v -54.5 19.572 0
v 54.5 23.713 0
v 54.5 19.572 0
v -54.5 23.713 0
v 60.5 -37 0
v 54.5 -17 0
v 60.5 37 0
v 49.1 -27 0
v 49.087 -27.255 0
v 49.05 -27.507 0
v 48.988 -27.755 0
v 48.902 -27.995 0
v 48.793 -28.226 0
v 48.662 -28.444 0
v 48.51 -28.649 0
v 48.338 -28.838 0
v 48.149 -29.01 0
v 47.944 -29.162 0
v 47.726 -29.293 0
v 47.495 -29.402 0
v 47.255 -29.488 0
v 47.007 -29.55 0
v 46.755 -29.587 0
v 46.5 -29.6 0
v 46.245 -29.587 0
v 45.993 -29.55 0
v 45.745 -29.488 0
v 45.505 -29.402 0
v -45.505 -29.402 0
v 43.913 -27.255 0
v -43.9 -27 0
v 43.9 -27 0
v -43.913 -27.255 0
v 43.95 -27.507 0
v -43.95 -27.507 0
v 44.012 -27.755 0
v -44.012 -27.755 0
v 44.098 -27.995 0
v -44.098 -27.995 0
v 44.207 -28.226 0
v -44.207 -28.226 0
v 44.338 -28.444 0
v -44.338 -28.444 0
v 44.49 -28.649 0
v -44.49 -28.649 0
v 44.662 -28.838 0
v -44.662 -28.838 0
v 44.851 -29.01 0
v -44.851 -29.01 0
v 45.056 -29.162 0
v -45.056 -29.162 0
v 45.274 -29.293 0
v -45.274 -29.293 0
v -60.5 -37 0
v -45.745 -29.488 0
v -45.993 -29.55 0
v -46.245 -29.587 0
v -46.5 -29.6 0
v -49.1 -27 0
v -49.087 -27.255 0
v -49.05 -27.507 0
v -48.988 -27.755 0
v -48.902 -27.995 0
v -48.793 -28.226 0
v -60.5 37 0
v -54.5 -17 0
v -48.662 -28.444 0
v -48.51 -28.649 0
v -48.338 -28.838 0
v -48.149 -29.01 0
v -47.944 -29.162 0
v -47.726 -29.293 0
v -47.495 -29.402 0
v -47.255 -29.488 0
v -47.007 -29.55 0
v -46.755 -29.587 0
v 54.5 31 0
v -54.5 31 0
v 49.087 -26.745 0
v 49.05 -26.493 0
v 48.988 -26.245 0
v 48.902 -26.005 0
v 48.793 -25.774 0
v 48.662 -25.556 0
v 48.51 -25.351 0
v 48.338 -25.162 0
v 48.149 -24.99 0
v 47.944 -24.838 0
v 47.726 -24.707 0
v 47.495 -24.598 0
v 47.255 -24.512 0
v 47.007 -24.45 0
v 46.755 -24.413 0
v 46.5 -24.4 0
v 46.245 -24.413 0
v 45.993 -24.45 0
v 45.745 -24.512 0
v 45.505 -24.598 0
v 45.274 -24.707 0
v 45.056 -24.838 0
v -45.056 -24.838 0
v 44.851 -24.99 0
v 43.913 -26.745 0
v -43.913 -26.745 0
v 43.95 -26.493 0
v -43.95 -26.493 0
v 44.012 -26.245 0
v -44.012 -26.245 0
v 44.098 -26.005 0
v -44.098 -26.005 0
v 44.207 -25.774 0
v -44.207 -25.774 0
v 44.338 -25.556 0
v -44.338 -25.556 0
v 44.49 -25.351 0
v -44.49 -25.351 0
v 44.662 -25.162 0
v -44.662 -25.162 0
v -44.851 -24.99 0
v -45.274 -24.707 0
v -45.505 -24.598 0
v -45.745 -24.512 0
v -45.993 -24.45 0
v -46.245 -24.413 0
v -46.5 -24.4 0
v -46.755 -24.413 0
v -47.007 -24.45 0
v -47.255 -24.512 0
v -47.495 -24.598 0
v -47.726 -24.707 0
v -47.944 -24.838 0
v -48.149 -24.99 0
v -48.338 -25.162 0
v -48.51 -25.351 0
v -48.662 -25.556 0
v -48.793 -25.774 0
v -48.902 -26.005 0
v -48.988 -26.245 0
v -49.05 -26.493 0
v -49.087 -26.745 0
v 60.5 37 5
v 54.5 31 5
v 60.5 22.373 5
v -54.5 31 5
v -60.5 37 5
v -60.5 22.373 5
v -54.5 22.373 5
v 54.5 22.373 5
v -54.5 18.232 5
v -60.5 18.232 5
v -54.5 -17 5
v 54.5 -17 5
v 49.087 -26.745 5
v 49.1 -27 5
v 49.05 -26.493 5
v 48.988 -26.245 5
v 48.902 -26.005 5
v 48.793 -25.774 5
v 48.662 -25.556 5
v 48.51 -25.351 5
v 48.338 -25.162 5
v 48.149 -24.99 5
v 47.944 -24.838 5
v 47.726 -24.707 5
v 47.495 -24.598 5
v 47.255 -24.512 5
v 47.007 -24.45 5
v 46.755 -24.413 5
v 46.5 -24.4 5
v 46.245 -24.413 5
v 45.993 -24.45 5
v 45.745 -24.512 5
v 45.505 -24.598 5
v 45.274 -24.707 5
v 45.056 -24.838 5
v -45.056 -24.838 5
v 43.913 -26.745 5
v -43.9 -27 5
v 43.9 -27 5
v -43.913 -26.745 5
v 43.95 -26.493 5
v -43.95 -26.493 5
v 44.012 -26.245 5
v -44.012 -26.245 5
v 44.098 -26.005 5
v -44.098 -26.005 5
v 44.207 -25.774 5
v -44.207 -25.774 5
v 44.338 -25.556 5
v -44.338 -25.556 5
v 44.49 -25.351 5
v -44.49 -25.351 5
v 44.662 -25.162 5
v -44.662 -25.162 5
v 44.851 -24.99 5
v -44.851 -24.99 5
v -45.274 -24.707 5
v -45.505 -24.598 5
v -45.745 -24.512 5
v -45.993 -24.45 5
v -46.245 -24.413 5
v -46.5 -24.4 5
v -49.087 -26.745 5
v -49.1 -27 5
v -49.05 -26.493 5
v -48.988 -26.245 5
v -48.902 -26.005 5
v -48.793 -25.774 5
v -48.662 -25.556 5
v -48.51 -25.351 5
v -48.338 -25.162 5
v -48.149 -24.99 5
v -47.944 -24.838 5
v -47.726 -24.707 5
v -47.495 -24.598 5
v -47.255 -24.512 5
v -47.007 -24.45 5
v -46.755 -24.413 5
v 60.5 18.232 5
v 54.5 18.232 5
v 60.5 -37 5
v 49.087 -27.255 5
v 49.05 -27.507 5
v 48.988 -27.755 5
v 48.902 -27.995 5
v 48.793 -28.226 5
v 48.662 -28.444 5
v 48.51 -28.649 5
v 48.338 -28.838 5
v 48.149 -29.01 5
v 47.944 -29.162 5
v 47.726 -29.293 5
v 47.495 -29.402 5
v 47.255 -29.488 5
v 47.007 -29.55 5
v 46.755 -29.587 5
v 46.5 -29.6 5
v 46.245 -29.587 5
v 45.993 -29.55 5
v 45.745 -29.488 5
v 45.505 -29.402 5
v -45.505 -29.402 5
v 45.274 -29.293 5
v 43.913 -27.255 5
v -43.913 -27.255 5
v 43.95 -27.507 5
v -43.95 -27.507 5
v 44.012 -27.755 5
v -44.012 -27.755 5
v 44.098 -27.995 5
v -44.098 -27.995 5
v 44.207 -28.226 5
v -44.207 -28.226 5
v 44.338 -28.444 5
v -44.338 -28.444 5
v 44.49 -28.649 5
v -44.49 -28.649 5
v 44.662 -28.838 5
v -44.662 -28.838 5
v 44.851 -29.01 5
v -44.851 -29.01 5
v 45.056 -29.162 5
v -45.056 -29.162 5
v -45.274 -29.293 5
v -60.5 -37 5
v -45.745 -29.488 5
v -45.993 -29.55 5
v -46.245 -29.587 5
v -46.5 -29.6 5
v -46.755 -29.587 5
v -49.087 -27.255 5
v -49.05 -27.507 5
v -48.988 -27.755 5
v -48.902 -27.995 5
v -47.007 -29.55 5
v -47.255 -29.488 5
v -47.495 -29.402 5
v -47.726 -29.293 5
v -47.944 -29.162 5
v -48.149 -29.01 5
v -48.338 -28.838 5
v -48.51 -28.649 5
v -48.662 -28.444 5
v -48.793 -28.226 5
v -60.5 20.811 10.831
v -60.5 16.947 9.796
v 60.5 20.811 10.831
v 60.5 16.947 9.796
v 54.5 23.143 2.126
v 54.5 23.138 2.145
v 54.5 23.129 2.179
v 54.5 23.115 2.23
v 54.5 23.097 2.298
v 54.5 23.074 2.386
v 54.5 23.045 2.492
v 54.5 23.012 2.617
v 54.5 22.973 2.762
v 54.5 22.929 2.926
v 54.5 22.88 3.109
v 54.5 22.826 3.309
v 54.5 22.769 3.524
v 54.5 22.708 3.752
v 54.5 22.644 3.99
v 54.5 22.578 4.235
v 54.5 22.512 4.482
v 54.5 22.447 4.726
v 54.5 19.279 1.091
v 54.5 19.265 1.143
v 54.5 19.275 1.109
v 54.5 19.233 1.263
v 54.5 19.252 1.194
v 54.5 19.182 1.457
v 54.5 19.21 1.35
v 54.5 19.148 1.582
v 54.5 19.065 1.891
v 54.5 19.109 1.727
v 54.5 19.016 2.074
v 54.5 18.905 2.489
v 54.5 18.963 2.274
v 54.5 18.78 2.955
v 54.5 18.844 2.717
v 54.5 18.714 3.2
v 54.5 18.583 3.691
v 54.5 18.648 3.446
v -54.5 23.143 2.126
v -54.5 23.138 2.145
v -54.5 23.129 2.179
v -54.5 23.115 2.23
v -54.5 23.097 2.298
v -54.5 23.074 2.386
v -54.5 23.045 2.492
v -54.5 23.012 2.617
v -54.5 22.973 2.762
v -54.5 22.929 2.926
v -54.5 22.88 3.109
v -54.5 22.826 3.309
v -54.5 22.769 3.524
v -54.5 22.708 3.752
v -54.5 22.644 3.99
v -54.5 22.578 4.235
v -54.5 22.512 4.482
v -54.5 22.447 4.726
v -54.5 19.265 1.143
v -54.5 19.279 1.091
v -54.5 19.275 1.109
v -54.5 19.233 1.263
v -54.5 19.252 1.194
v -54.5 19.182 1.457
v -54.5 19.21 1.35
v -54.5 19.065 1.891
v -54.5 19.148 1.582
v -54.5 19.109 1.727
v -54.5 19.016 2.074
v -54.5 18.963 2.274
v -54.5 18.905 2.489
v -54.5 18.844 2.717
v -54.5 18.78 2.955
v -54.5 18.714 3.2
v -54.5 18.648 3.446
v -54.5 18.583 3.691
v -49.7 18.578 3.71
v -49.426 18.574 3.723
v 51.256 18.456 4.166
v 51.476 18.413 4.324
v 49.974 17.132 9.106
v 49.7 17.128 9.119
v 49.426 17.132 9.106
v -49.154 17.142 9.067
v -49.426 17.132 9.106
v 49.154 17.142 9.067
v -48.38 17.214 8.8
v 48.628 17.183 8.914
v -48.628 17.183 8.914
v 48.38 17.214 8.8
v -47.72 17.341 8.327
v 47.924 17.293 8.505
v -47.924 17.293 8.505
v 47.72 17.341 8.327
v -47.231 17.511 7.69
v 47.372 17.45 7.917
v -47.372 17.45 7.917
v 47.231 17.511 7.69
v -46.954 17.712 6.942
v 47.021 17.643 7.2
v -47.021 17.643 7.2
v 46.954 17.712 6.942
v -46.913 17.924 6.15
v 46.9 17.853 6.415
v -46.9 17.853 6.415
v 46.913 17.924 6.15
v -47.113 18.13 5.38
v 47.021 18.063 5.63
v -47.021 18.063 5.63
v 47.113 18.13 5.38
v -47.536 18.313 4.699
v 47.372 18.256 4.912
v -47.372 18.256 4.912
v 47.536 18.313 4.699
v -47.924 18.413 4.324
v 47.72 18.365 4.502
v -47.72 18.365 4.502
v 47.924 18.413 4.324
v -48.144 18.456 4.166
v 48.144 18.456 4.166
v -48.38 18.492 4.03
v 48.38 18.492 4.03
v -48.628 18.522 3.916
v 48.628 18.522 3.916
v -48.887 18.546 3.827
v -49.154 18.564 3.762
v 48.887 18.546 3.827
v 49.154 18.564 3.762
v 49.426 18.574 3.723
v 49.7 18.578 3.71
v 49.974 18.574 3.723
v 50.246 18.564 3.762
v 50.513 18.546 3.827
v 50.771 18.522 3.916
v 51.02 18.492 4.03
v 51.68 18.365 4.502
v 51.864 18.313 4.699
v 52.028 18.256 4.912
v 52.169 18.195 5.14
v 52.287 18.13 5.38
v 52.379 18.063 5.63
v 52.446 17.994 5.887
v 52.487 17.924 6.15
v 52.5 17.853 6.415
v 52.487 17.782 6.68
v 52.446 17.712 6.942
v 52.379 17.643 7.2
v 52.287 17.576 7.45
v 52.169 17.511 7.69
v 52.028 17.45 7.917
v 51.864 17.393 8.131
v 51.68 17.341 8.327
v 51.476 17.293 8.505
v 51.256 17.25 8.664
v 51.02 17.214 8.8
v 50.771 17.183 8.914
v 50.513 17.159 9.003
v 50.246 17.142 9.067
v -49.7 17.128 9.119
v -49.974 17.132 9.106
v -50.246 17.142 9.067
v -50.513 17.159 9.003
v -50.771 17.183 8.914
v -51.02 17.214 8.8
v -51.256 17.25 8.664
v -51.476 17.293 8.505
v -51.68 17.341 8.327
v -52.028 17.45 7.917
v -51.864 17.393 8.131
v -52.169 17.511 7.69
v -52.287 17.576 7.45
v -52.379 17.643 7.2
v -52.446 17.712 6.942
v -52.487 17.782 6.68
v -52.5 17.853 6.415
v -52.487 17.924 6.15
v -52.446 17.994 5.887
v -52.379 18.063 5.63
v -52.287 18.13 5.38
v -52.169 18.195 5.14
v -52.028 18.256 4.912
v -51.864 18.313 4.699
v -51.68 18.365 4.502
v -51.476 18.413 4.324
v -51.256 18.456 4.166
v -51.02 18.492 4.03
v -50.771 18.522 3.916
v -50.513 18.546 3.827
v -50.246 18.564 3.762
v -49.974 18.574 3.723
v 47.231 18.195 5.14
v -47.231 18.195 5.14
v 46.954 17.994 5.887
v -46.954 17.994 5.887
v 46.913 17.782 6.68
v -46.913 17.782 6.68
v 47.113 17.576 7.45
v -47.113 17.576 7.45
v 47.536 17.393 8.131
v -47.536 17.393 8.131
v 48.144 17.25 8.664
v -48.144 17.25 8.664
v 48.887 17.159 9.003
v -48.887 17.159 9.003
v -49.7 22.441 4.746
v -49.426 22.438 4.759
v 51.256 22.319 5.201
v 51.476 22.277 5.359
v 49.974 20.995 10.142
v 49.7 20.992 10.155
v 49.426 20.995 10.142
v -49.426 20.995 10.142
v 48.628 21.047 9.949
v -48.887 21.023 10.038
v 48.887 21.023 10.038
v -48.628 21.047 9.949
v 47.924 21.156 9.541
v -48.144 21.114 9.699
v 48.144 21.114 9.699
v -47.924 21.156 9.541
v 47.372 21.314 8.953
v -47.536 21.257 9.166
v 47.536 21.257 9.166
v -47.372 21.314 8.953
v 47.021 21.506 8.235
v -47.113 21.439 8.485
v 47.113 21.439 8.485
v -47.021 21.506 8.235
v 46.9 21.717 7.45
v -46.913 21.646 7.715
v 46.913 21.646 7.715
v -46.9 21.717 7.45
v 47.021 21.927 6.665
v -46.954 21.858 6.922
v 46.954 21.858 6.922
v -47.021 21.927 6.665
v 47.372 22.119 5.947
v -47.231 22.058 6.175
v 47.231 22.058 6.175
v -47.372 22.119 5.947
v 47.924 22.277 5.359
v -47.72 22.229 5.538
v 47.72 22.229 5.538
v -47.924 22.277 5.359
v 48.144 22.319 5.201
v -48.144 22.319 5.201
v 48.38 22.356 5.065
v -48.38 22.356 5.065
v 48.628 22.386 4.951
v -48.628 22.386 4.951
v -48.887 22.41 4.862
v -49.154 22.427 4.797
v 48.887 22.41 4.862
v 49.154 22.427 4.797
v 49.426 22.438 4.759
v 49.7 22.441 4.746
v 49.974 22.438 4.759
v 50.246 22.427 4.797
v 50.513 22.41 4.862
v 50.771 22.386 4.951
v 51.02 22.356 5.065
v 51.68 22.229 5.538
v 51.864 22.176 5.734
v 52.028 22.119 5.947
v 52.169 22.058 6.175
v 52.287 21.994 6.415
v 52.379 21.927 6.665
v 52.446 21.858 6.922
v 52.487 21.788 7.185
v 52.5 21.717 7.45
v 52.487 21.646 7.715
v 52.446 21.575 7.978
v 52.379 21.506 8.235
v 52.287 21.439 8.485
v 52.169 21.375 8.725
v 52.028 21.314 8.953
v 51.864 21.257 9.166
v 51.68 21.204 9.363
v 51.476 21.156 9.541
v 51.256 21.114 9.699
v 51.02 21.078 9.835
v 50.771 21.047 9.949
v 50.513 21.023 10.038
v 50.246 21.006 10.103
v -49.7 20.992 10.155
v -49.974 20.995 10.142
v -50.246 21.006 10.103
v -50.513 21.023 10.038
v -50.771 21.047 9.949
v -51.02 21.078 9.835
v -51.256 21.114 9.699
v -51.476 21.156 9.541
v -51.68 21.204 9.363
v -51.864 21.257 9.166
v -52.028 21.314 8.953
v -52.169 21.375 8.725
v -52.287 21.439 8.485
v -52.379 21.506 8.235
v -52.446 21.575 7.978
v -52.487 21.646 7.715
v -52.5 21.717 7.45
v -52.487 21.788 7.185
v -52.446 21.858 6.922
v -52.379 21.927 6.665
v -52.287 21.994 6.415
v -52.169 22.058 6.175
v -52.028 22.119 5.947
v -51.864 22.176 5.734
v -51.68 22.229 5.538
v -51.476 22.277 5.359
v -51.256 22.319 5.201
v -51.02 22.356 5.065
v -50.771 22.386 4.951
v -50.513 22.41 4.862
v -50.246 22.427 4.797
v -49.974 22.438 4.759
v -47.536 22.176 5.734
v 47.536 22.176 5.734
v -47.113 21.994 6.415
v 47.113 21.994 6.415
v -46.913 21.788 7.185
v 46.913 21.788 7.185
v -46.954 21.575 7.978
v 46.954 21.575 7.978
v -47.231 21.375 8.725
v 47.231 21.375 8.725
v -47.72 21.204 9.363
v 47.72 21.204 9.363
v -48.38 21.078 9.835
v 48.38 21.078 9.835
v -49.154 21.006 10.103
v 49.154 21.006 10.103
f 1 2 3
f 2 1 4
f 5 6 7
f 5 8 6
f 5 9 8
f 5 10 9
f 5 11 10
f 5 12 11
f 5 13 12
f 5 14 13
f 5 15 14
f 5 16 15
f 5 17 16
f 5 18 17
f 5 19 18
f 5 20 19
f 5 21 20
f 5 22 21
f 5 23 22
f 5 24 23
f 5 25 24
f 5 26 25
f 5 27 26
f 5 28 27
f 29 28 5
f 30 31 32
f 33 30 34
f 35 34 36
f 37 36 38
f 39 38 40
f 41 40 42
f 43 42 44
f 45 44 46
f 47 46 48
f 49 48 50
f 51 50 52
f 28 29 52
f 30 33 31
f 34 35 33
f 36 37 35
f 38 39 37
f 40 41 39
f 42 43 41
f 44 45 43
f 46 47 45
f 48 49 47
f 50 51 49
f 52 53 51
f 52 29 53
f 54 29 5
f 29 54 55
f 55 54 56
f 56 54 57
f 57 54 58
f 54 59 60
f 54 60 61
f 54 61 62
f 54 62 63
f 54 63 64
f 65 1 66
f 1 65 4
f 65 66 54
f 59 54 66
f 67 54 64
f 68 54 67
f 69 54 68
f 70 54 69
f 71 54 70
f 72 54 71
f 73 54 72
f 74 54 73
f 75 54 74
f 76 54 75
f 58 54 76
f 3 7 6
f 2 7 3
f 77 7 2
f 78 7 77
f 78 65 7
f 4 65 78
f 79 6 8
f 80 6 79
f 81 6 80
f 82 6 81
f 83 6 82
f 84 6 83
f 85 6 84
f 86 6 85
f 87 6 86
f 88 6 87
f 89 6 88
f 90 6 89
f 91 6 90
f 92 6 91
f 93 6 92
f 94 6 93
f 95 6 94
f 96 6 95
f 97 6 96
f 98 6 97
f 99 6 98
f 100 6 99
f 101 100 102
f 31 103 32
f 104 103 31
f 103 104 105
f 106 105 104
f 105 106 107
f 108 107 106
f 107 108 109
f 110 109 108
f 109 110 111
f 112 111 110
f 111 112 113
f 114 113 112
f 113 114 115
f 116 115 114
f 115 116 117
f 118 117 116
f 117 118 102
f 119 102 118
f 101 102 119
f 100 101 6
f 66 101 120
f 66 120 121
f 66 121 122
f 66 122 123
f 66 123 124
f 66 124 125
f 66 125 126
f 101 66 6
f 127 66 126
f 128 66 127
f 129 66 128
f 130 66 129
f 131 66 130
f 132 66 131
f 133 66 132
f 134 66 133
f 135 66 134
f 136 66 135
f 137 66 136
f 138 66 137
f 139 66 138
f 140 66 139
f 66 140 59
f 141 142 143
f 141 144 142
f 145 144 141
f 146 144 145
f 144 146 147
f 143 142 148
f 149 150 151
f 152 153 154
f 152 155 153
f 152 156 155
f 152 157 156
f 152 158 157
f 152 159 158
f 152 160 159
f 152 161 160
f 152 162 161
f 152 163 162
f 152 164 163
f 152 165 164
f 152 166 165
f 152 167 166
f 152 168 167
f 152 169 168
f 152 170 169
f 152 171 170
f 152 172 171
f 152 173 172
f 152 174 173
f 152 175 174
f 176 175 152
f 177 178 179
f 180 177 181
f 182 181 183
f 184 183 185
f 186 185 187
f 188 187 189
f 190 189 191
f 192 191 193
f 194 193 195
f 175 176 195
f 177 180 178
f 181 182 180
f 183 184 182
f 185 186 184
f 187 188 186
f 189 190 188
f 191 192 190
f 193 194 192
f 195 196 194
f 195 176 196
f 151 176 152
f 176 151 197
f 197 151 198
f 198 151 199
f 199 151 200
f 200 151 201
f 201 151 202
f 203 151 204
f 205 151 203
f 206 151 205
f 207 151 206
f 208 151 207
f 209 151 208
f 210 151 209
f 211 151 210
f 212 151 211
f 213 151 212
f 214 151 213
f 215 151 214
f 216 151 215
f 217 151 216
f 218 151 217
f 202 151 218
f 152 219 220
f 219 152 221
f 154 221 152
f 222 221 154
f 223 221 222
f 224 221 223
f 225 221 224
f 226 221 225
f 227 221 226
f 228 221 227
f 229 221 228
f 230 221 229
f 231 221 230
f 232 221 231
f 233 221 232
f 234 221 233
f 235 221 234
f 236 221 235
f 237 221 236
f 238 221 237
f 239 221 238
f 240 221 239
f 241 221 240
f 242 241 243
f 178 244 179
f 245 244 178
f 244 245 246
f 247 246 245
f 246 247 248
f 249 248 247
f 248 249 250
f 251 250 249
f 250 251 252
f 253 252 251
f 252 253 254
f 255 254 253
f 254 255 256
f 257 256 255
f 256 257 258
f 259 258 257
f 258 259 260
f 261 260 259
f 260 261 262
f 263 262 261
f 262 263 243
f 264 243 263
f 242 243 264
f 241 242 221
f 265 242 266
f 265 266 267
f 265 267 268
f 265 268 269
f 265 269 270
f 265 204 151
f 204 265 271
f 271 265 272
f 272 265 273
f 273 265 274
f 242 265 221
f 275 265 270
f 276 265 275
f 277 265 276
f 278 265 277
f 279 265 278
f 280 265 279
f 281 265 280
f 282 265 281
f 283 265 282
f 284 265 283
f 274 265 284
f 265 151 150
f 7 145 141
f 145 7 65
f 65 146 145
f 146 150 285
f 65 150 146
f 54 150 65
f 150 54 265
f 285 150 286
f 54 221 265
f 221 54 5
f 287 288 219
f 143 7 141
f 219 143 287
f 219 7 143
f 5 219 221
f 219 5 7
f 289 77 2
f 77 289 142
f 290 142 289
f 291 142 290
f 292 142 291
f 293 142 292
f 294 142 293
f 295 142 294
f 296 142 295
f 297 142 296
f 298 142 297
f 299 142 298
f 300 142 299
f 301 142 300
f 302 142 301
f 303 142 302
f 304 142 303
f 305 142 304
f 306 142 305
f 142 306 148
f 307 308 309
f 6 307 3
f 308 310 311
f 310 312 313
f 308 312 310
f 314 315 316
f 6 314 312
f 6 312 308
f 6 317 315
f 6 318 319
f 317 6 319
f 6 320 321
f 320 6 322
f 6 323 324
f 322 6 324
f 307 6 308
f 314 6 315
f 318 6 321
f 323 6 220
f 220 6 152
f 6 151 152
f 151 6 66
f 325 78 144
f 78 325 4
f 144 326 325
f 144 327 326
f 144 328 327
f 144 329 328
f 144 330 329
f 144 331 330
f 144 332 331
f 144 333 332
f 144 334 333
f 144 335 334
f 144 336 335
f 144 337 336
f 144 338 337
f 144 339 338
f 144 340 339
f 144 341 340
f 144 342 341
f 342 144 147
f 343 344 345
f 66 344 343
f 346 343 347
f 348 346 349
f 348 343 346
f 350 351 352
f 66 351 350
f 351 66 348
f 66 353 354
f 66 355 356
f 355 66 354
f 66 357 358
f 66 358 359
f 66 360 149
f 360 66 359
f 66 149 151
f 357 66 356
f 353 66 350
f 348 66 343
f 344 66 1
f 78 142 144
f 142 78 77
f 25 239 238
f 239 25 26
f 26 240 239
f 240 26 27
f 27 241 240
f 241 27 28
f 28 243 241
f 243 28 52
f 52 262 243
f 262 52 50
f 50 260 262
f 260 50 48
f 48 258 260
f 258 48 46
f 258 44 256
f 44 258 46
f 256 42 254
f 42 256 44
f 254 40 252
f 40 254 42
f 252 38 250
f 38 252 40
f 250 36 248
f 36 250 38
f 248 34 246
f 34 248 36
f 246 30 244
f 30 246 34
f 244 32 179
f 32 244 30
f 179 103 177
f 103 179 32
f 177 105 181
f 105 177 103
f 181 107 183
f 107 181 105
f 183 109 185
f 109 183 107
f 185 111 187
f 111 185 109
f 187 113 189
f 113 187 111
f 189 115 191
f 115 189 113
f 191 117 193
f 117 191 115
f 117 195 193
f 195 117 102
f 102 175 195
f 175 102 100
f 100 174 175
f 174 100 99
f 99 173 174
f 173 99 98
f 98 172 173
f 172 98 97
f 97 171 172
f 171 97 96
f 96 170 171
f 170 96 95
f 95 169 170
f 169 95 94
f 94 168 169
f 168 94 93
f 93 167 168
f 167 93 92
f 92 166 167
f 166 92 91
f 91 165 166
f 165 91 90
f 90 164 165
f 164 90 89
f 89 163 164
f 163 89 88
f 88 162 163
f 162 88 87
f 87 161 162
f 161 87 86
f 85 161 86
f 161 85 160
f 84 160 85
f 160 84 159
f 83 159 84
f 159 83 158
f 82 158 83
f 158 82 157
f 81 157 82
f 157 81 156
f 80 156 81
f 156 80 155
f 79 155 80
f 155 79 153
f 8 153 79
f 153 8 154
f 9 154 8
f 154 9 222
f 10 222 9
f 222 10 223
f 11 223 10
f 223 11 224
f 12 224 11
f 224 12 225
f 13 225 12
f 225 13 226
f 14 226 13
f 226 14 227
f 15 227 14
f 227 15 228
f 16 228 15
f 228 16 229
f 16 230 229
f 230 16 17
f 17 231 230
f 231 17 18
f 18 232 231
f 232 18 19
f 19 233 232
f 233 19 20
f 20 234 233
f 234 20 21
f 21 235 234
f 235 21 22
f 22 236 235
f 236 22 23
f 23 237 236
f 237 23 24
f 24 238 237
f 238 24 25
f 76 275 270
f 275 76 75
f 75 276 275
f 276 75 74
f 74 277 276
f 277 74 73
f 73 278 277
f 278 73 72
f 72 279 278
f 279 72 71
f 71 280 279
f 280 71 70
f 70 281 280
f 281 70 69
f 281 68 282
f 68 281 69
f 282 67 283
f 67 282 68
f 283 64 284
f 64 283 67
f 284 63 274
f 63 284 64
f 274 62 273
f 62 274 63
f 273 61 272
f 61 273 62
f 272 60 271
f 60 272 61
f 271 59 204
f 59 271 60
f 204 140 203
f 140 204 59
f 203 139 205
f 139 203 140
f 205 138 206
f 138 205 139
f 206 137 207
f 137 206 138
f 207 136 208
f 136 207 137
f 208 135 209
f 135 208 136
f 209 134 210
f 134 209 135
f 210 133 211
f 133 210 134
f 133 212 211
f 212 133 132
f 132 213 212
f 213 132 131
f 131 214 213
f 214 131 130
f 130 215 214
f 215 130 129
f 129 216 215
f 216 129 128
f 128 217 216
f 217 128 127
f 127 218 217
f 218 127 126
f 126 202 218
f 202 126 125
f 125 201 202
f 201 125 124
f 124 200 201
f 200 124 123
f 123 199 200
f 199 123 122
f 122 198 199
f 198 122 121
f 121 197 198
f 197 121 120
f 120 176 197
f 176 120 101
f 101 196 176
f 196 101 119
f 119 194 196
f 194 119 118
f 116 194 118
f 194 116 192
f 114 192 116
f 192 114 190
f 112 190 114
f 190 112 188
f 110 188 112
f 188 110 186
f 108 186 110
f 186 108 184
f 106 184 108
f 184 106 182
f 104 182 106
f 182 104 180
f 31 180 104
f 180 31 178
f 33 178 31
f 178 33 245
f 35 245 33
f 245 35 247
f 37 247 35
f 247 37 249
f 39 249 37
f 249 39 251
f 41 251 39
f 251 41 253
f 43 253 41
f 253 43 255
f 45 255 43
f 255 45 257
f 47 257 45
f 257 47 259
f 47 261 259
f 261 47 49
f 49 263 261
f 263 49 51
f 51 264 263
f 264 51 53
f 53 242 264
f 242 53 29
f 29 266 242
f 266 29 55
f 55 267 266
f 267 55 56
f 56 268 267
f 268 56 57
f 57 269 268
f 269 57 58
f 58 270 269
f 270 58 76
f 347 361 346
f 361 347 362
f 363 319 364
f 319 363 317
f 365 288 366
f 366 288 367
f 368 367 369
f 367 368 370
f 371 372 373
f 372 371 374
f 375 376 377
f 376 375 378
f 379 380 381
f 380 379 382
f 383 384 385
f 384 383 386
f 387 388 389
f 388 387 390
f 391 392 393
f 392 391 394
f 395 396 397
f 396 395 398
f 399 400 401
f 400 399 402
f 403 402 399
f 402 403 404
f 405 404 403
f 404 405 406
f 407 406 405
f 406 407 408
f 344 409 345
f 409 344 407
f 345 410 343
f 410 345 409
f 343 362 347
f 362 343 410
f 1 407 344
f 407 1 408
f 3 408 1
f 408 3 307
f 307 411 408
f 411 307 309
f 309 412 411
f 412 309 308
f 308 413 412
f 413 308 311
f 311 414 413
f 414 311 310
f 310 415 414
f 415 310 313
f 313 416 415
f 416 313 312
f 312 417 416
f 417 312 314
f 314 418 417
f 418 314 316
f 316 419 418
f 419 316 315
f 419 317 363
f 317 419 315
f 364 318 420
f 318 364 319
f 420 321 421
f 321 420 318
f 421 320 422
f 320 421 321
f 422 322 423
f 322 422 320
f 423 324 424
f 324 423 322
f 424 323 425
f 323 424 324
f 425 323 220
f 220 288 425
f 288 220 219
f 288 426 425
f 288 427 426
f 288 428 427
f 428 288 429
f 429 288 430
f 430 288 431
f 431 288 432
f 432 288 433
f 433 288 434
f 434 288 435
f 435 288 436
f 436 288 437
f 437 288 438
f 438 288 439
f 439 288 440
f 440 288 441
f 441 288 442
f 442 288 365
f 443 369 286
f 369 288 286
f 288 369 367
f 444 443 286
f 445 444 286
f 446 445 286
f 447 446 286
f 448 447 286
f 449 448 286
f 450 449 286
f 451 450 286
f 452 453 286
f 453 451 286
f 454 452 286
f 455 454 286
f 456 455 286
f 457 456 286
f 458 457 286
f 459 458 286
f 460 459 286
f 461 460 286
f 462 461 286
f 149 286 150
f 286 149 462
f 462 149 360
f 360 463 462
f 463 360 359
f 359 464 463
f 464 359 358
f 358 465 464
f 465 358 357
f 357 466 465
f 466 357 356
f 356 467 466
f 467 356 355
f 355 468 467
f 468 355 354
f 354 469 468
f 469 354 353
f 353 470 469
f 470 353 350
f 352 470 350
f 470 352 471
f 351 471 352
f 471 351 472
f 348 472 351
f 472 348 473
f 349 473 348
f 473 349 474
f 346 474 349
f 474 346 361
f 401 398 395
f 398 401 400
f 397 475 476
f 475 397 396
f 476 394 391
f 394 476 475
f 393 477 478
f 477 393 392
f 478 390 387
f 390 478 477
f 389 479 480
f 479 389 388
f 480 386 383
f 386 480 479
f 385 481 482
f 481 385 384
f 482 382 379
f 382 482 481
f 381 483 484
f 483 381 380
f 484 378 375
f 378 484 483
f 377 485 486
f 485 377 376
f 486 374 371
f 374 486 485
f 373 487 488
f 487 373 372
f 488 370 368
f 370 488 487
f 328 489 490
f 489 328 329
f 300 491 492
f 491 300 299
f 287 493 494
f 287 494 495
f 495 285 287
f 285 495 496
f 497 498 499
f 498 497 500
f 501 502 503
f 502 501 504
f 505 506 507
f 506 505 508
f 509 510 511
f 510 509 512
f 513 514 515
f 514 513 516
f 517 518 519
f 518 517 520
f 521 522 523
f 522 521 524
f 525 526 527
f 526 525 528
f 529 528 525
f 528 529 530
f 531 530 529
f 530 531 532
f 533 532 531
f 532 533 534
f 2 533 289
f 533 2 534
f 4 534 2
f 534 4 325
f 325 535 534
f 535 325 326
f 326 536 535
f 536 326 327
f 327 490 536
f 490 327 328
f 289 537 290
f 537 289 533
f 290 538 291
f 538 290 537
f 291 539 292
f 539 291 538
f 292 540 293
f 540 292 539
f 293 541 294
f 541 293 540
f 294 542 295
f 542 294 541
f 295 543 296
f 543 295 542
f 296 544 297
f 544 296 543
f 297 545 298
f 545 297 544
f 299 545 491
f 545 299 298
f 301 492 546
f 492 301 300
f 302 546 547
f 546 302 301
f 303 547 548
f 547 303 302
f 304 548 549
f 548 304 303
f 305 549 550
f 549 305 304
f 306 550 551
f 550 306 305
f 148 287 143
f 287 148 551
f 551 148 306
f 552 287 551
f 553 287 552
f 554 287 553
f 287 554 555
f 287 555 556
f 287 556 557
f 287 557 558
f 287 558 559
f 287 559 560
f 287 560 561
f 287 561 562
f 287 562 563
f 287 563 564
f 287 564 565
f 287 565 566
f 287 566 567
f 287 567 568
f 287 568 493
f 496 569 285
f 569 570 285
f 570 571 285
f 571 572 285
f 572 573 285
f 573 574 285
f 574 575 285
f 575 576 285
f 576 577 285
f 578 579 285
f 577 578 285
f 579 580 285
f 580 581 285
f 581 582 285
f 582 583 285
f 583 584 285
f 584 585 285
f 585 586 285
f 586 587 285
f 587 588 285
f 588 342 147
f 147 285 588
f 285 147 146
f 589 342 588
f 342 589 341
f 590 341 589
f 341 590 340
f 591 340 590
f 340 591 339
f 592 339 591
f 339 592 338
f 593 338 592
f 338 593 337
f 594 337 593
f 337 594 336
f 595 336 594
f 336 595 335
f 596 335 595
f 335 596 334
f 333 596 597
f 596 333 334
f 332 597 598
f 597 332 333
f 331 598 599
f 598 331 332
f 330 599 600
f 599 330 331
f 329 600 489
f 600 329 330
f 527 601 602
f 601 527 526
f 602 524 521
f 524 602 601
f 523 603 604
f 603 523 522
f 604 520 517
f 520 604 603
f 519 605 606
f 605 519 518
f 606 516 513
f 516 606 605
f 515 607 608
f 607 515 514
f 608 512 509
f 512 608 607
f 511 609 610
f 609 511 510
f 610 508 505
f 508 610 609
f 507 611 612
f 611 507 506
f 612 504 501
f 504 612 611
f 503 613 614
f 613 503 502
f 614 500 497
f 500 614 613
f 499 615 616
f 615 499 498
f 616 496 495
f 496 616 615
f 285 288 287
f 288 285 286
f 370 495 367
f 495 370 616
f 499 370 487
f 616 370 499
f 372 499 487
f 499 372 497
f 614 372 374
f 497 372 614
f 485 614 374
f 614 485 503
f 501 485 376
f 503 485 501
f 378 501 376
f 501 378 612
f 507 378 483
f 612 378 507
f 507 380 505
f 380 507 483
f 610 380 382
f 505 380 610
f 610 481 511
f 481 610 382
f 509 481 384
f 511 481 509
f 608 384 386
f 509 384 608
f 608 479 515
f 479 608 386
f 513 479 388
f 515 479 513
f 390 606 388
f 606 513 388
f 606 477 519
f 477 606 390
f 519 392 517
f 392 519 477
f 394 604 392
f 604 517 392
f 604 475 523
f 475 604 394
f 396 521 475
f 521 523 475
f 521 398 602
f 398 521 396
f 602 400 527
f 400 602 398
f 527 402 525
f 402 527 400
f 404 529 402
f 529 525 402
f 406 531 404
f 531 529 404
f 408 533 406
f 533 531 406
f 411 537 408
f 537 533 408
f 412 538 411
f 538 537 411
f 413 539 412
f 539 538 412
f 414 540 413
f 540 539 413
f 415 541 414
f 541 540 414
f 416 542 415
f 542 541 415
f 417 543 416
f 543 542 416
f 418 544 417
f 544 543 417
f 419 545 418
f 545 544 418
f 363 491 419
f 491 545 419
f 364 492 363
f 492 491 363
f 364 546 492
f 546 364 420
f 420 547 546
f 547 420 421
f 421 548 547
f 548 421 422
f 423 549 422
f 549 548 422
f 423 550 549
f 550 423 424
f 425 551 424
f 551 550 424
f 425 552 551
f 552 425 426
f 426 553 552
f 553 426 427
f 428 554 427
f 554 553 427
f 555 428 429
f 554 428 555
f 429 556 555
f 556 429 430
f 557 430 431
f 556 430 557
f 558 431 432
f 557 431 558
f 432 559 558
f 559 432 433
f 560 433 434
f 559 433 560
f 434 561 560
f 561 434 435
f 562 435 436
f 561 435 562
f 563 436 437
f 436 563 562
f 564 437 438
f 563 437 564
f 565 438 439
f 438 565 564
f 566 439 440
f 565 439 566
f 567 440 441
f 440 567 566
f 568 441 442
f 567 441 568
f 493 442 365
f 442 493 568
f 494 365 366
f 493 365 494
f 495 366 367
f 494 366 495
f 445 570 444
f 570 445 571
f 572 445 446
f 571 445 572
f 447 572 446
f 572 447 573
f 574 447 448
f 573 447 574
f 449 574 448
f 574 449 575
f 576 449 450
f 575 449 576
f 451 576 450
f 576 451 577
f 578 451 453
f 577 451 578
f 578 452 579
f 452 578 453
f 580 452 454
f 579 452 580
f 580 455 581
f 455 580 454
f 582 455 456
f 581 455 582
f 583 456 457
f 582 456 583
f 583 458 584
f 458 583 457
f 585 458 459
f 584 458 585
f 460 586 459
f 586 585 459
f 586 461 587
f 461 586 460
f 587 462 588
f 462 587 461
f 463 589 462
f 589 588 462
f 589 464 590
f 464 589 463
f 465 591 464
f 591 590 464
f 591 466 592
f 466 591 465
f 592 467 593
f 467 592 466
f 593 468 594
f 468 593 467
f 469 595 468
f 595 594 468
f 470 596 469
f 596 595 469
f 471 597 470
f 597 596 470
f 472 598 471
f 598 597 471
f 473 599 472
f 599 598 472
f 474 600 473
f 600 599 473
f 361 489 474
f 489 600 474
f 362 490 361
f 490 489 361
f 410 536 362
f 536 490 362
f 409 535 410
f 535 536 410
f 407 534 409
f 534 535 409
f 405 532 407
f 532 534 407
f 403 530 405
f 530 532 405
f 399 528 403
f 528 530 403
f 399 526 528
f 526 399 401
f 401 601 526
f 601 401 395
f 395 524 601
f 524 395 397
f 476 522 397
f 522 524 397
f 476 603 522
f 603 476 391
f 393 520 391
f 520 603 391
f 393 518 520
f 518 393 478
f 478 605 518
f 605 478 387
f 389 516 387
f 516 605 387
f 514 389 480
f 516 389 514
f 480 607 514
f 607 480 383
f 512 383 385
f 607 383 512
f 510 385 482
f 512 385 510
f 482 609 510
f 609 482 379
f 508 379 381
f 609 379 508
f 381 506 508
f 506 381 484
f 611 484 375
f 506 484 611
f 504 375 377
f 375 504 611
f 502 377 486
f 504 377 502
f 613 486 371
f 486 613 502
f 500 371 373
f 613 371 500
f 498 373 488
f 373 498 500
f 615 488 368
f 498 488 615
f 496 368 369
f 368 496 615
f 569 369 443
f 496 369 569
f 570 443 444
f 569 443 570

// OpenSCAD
$fn = 64;

base = [105.00, 74.00];

space = 4.00;
base_border = 6.00;
base_height = 5.00;
border = base_border;

dia_mount = 5.60 / 2;

difference() {
    union() {
        linear_extrude(base_height)
            union() {
                difference() {
                    square([base[0] + base_border * 2 + space, base[1]], center = true);
                    square([base[0]+ space, base[1] - base_border * 2], center = true);
                }
                translate([0, -base[1]/2 + 10.00, 0]) {
                    difference() {
                        square([base[0] + space, 20.00], center = true);
                        translate([base[0] / 2 - base_border, 0, 0])
                            circle(2.60);
                        translate([-base[0] / 2 + base_border, 0, 0])
                            circle(2.60);
                    }
                }
            }

        translate([0, base[1] / 2 * 0.5, 4])
            rotate([-75, 0, 0])
                linear_extrude(4)
                    difference() {
                        square([base[0] + border * 2 + space, 12], center = true);
                        translate([base[0] / 2 - dia_mount, -2.5 , 0])
                            circle(dia_mount);
                        
                        translate([-base[0] / 2 + dia_mount, -2.5 , 0])
                            circle(dia_mount);
                    }
    }
    
    translate([0, 0, -5])
        linear_extrude(5)
            square([base[0] + base_border * 2 + space, base[1]], center = true);
}
